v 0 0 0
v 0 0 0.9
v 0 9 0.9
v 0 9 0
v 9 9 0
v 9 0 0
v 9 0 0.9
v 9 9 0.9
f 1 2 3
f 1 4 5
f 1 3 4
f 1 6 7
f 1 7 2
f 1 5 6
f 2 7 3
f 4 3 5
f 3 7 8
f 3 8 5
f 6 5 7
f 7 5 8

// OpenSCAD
/* Warning, this is a very basic generator with a lot of approximation 
input data : [VQFN, TQB, 9x9x0.9mm, 64, , A, C04-21442A]
generated by com.zoubworld.electronics.cad.model3d.Basic
Date : Sun Feb 15 10:50:49 CET 2026
*/

//body
color("black")
translate([0,0,0])
cube([9.0,9.0,0.9], center=false);
